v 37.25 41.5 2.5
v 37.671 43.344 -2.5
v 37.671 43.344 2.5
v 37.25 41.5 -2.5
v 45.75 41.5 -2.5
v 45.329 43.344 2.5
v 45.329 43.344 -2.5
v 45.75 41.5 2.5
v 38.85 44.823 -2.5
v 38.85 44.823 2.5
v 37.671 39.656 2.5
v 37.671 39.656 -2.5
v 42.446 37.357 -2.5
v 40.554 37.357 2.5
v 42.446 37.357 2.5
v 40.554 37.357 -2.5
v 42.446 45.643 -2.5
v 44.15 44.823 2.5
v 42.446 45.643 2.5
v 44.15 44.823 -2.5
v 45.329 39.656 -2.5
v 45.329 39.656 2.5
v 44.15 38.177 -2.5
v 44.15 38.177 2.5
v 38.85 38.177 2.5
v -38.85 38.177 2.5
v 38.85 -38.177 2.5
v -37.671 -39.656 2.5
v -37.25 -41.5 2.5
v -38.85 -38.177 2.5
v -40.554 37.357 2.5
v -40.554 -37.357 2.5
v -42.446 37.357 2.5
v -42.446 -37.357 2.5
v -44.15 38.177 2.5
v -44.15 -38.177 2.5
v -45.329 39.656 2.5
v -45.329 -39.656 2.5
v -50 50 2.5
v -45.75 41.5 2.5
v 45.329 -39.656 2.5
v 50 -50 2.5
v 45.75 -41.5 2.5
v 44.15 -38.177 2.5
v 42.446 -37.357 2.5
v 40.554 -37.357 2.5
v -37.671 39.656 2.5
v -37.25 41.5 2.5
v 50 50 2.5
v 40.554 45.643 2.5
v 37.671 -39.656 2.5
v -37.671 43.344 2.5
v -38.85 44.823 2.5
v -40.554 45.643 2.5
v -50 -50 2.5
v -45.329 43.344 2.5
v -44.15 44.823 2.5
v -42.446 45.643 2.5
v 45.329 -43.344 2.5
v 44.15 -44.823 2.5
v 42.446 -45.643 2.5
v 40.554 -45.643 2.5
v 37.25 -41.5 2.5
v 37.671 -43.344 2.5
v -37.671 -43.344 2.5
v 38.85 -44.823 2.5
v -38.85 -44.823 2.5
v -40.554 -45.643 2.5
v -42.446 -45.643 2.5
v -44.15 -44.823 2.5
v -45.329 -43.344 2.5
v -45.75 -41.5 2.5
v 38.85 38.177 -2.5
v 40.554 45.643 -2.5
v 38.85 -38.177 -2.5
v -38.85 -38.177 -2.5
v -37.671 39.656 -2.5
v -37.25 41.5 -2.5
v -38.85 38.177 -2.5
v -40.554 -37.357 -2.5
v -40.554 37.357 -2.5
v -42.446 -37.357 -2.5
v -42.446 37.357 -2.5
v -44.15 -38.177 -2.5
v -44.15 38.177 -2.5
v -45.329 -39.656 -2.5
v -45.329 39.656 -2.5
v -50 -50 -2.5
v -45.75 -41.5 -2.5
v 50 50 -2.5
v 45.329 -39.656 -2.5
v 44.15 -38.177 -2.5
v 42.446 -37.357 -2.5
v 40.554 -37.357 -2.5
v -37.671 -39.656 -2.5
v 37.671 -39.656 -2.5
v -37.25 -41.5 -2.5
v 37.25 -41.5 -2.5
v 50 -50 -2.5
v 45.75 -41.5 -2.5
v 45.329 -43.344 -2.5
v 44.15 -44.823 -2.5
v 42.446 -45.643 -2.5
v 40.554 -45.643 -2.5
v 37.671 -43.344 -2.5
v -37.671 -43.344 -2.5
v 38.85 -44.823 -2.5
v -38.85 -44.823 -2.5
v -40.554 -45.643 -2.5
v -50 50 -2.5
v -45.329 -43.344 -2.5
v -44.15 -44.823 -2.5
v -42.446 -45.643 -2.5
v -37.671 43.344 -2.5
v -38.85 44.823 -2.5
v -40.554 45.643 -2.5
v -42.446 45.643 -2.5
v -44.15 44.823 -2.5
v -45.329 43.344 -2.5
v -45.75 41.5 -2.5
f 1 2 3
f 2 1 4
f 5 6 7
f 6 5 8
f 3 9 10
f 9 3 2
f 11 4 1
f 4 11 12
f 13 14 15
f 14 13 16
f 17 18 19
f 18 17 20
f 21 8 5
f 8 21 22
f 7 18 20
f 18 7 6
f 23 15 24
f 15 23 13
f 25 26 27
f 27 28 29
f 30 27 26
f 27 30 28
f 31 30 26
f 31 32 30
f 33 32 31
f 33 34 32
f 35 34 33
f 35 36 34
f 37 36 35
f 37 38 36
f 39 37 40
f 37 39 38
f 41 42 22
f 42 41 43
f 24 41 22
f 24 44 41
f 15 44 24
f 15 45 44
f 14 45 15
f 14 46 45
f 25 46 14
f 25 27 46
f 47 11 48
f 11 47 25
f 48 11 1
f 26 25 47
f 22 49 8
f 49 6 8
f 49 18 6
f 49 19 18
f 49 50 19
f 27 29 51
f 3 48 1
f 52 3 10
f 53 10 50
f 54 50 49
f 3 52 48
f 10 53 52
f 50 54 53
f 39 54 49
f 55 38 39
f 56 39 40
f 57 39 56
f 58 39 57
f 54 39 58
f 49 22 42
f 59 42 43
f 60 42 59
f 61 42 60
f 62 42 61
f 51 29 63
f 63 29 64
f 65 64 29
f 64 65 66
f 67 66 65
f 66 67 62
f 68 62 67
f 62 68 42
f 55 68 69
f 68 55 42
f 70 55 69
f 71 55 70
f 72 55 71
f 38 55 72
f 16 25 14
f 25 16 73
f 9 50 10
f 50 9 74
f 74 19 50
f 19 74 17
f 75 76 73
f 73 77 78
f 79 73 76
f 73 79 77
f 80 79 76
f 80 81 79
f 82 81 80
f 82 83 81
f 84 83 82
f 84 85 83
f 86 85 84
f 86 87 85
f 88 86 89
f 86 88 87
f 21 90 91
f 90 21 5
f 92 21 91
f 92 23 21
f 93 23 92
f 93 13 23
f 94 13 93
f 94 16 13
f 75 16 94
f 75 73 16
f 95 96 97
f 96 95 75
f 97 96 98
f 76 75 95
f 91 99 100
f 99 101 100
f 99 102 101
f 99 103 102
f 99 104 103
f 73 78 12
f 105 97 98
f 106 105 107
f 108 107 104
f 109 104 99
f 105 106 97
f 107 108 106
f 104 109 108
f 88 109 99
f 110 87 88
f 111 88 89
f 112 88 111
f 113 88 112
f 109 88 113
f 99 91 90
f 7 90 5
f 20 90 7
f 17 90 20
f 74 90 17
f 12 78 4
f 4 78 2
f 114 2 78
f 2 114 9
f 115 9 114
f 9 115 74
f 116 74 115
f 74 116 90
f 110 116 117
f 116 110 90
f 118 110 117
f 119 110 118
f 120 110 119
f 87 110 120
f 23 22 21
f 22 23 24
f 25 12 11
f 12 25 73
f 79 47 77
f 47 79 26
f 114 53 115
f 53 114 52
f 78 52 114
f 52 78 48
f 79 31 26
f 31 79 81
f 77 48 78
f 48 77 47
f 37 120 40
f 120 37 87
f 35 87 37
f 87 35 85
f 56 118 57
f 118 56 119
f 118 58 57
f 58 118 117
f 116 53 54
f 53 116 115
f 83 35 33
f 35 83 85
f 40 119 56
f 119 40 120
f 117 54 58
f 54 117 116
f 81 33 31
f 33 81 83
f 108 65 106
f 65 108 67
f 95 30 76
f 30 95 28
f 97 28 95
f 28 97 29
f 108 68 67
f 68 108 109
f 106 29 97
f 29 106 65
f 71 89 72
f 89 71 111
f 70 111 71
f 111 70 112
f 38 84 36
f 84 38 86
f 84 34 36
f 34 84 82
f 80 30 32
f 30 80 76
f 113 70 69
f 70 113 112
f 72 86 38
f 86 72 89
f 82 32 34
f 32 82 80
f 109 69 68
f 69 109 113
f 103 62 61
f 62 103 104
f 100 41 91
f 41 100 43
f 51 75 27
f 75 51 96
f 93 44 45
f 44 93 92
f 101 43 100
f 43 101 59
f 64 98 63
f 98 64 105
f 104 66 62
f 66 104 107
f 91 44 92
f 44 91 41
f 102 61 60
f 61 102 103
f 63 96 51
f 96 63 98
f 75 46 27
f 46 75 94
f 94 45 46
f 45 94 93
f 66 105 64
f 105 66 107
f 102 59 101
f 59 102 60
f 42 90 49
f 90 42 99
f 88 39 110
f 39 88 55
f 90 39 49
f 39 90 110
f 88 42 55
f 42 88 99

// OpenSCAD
// Generated by SolidPython 1.1.3 on 2023-10-18 15:46:59


difference() {
	cube(center = true, size = [100, 100, 5]);
	union() {
		translate(v = [41.5000000000, 41.5000000000]) {
			cylinder(center = true, h = 5, r = 4.2500000000);
		}
		translate(v = [-41.5000000000, 41.5000000000]) {
			cylinder(center = true, h = 5, r = 4.2500000000);
		}
		translate(v = [-41.5000000000, -41.5000000000]) {
			cylinder(center = true, h = 5, r = 4.2500000000);
		}
		translate(v = [41.5000000000, -41.5000000000]) {
			cylinder(center = true, h = 5, r = 4.2500000000);
		}
	}
}
/***********************************************
*********      SolidPython code:      **********
************************************************
 
import solid
import numbers
import pudb
from solid.utils import *
import viewscad
import subprocess
import os
import os.path as osp
import math
import sys

chamfer_extrude=solid.import_scad("./chamfer_extrude.scad")
chamfer_extrude=chamfer_extrude.chamfer_extrude
r = viewscad.Renderer(width=800, height=800)

def debug(model,f_name,path="/home/ts/code/projects/mfd/designs/debug"):
    solid.scad_render_to_file(model,osp.join(path,f_name)+".scad")
#generate position list of wells using offset from center
wells_pos_from_center_4 = lambda offset: [[-offset,offset],
                                        [offset, offset],
                                        [-offset, -offset],
                                        [offset, -offset]]
#wells_pos_from_center_2 = lambda offset: [[0,offset],
#                                        [0, -offset]]
wells_pos_from_center_2 = lambda offset: [[offset,0],
                                        [-offset,0]]

def make_well(dims,shape=None,height=None,dxf=False):
    def circle_cylinder():
        if dxf or (height is None):
            well = solid.circle(r=dims, segments=64)
        else:
            well = solid.cylinder(r=dims, h=height, segments=64, center = True)
        return well
    if dims is None:
        sys.exit("radius needs to be a number")
    if isinstance(dims, numbers.Number):
        well =circle_cylinder()
    elif len(dims)==1:
        if isinstance(dims[1], numbers.Number):
            well =circle_cylinder()
        else:
            sys.exit("radius needs to be a number")
    elif len(dims)==2:
        well = solid.square(dims,center = True)
    elif len(dims)==3:
        well = solid.cube(dims, center = True)
    return well

def wells_top_bottom(center_gap,device_dims=None,shape=None,height=None, positions = None, dxf = False,well_shape=None):
    if well_shape == None:
        well_shape = make_well(device_dims,shape=shape,height=height,dxf=dxf)
    wells = []
    if positions is None:
        offset = radius+radius/2.0
        positions = wells_pos_from_center_2(offset)
    if dxf or (height is None):
        height = 0
    for position in positions:
        if dxf:
            wells.append(solid.translate([position[0],position[1]])(well_shape))
        else:
            wells.append(solid.translate([position[0],position[1],height/2.0])(well_shape))
    return  union()(*wells)

#place wells in four corners 
def four_corner(radius,height=None, positions = None, dxf = False):
    #if well pos not specified set
    #to equally spaced by half radius
    if positions is None:
        offset = radius+radius/2.0
        positions = wells_pos_from_center_4(offset)
    if dxf or (height is None):
        height = 0
    #make wells at positions with specified radius and height
    wells = []
    for position in positions:
        #make circle if making dxf
        if dxf:
            well_shape = solid.circle(r=radius, segments=64)
            well_shape = solid.translate([position[0],position[1]])(well_shape)
        #if stl make cylinder
        else:
            well_shape = solid.cylinder(r=radius, h=height, segments=64, center = True)
            well_shape = solid.translate([position[0],position[1],height/2.0])(well_shape)
        wells.append(well_shape)
    return  union()(*wells)

#generate channels 
def make_channels(length,width,height=0,num_chans=1,max_chans=None,spacing=None, dxf = False,
                  rotate_channels=False):
    if dxf or (height is None):
        height = 0
    #if channel gap not defined, is equal to
    if spacing is None: spacing = width
    #calculate number of channels if fitting max num within given width
    if not max_chans is None:
        import math
        num_chans = math.floor((max_chans-spacing)/(width+spacing))
    #get total width of channel section  
    total_width = (width*num_chans)+(spacing*(num_chans-1))

    #make template channel
    #if rotate_channels: width, length = length, width
    if dxf:
        channel_t = solid.square([length,width],center = True)
    else:
        channel_t = solid.cube([length,width,height], center = True)

    #if number channels is even, offset the first channel to center its gap
    if num_chans % 2 == 0: centering = -(width/2.0+spacing/2.0)
    else: centering = 0
    #move template channel up to align bottom at z = 0 
    #and offset center if necessary
    if dxf:
        channel_t = solid.translate([0,centering])(channel_t)
    else:
        channel_t = solid.translate([0,centering,height/2.0])(channel_t)

    #if rotate_channels: length,width = width,length
    #start making the channels
    channels = []
    for i in range(num_chans):
        #if i=0 there is no translation
        #if i=1, we make the first channel adjacent to second
        direction = i

        #if i>=1, we add channels alternating left and right
        if i >= 1:
            direction = -(i/2.0)
            if i % 2 == 1: direction = (-direction)+0.5
                
        #make channel at right position and add it to channel list
        translation_coords = [0,direction*(width+spacing)]
        #if rotate_channels: translation_coords = [direction*(width+spacing),0]
        if dxf:
            channel = solid.translate(translation_coords)(channel_t)
        else:
            channel = solid.translate([*translation_coords,0])(channel_t)
        channels.append(channel)
    
    #group all channels as one object
    channels = union()(*channels)
    #compute the x,y,z dimensions in order to pass as arguments 
    #for construction of other parts of device (such as the chambers)
    measurements = {'x':(length/2.0,-length/2.0),
                    'y':(total_width/2.0,-total_width/2.0)}
    if not dxf:
        measurements['z'] = (height,0)
    if rotate_channels:
        channels = solid.rotate(90)(channels)
        measurements['x'],measurements['y']=measurements['y'],measurements['x']
    return channels,measurements

def make_chambers(msrs,height=None,extra=0,len_until=None,width=None, dxf = False):
    #computes x,y,z length
    total = lambda x : abs(x[0]) + abs(x[1])
    
    #if specific height if specified
    #otherwise use same height as channels
    if dxf:
        pass
    elif not height is None:
        msrs['z'] = (height,0)
    else:
        msrs['z'] = (0,0)
        
    #make copy of measurements from channels to modify chamber dimensions 
    #and add length to chambers as specified
    chamber_dims = msrs.copy()
    #calculate length of chamber to reach specified offset
    if not len_until is None:
        chamber_len = len_until-(msrs['x'][0])
    #or add specified length to channel length (if not specified, adds 0)
    else:
        chamber_len = msrs['x'][0]+extra
    #set the chamber length based 
    chamber_dims['x'] = (chamber_len/2.0,-(chamber_len/2.0))
    #compute final dimensions of chamber
    if not width is None:
        chamber_dims['y'] = (width/2.0,-width/2.0)
    chamber_dims = [total(size) for size in chamber_dims.values()]
        
    #calculate chamber translation offset to place adjacent to channels
    chamber_trslt = msrs['x'][0]+(chamber_len/2.0)
    #compute chamber translation coordinates to align with channels
    #x = 1 moves chamber above channels
    #x = -1 moves chamber below channels
    if dxf:
        trslt = lambda x : [x*(chamber_trslt),0]
    else:
        trslt = lambda x : [x*(chamber_trslt),0,msrs['z'][0]/2.0]
    
    #function to make chamber at top or at bottom 
    if dxf:
        move = lambda x : solid.translate(trslt(x))(solid.square(chamber_dims, center = True) )
    else:
        move = lambda x : solid.translate(trslt(x))(solid.cube(chamber_dims,center = True))
    #make top and bottom chambers and return them as grouped
    top = move(1)
    bottom = move(-1)
    #chambers=solid.rotate(90)(solid.union()(top,bottom))
    chambers=(solid.union()(top,bottom))

    return chambers

#create alignment features 
def alignment_features(unit,dims,grid_size, mask_size = None, alignment = "hollow", units_from_center = (2.5,2.5), corner_len=None):
    width = grid_size[0]*dims[0]
    length = grid_size[1]*dims[1]
    if mask_size is None and corner_len is None:
        corner_len = (dims[0] + dims[1]) /2 / 8
    corner = lambda thickness_div : solid.union()( solid.square([corner_len,corner_len/thickness_div],center=False), solid.square([corner_len/thickness_div,corner_len],center=False) )
    
    def make_full(thickness_div):
        thickness = corner_len/thickness_div
        tr = solid.translate([0, 0, 0 ])(solid.rotate(180)(corner(thickness_div)))
        tr = solid.translate([thickness/2,thickness/2,0])(tr)
        bl = solid.translate([0, 0, 0 ])(solid.rotate(0)(corner(thickness_div)))
        bl = solid.translate([-thickness/2,-thickness/2,0])(bl)
        return solid.union()(tr,bl)
    
    def make_hollow(thickness_div):
        thickness = corner_len/(thickness_div/2)
        inner = make_full(thickness_div)
        outer = make_full(thickness_div/2)
        hollow = outer - inner 
        return hollow
    
    center = (width /2 , length/2)
    mask_pos = lambda x,y : (center[0] + x*(float(units_from_center[0])*dims[0]), center[1] + y*(float(units_from_center[1])*dims[1]))
    positions = []
    positions.append(mask_pos(1,0))
    positions.append(mask_pos(0,1))
    positions.append(mask_pos(-1,0))
    positions.append(mask_pos(0,-1))
    make_mask = lambda mtype : make_hollow(8) if mtype == "hollow" else make_full(8)
    masks = [ solid.translate([*position,0])(make_mask(alignment)) for position in positions]
    
    solid.scad_render_to_file(solid.union()(*masks),"./designs/open_chamber/masks.scad")
    #return unit - solid.union()(*masks)
    return solid.union()(*masks,unit)

def create_outline(thickness, array, dims, grid_size,):
    width = grid_size[0]*dims[0] + thickness *2
    length = grid_size[1]*dims[1] + thickness *2
    outer = solid.translate([-thickness, -thickness,0])(solid.square([width, length]))
    return outer-array

def create_wall(wall_thickness, outline_thickness, dims, grid_size, wall_height = 2000, dxf = False):
    inner_width = grid_size[0]*dims[0] + outline_thickness *2
    inner_length = grid_size[1]*dims[1] + outline_thickness *2
    outer_width = inner_width + wall_thickness * 2
    outer_length = inner_length + wall_thickness * 2
    outer_pos_x = -outline_thickness-wall_thickness
    outer_pos_y = -outline_thickness-wall_thickness
    inner_pos_x = -outline_thickness
    inner_pos_y = -outline_thickness
    if dxf:
        inner_wall = solid.translate([inner_pos_x,
                                      inner_pos_y,
                                      0])(solid.square([inner_width, inner_length]))
        outer_wall = solid.translate([outer_pos_x,
                                      outer_pos_y,
                                      0])(solid.square([outer_width, outer_length]))

        return outer_wall-inner_wall
    else:
        inner_wall = solid.translate([inner_pos_x,
                                      inner_pos_y,
                                      0])(solid.cube([inner_width, inner_length,wall_height]))
        outer_wall = solid.translate([outer_pos_x,
                                      outer_pos_y,
                                      0])(solid.cube([outer_width, outer_length,wall_height]))

        return outer_wall-inner_wall, {'wall_height': wall_height,
                                       'wall_thickness': wall_thickness,
                                       'inner_width':inner_width,
                                       'inner_length': inner_length,
                                       'outer_width': outer_width,
                                       'outer_length': outer_length,
                                       'outer_pos_x' : outer_pos_x,
                                       'outer_pos_y' : outer_pos_y,
                                       'inner_pos_x' : inner_pos_x,
                                       'inner_pos_y' : inner_pos_y}

def create_thicker_wall(wall_thickness, outer_wall_offset, wall_dims, dims, grid_size, height_start = .2, height_end=2, dxf = False):
    addon_wall,thicker_wall_dims = create_wall(wall_thickness, outer_wall_offset, dims, grid_size, wall_height=height_end-height_start, dxf = False)
    addon_wall = solid.translate([0,0,height_start])(addon_wall)

    thicker_wall_dims['wall_height'] = height_end
    thicker_wall_dims['wall_thickness'] = wall_dims['wall_thickness'] + wall_thickness
    return addon_wall, thicker_wall_dims
 
def add_lock_to_wall(wall,wall_dims,y_offset = 0,cut_ratio=0.7,L_length=3, gap_ratio=0.05, axis="x",width_ratio=1/2):
    # Makes L shape
    def make_L(max_length,length_thickness,max_width,width_thickness,height,y_offset):
        length = solid.cube([max_length,length_thickness,height])
        width = solid.cube([width_thickness,max_width,height])
        width = solid.translate([max_length-(width_thickness),0,0])(width)
        L = solid.union()(width,length)
        debug(L,"L")
        if axis == "x":
            L = solid.rotate(-90)(L)
            L = solid.translate([0,max_length,0])(L)
        else:
            L = solid.rotate(-180)(L)
            L = solid.translate([max_length,max_width,0])(L)
        return solid.translate([0,0,y_offset])(L)
    
    lock_length = L_length
    lock_width = wall_dims['wall_thickness']*width_ratio
    lock_length_thickness = lock_width/2
    lock_width_thickness = lock_width/2
    L_lock = make_L(lock_length,lock_length_thickness,lock_width,lock_width_thickness, wall_dims['wall_height']-y_offset, y_offset)
    
    margin_space = lock_length - lock_length*(1-gap_ratio)
    key_length = lock_length-margin_space
    key_length_thickness = lock_length_thickness-(margin_space*2)
    key_width = lock_width-(margin_space*2)
    key_width_thickness = lock_width_thickness-(margin_space*2)
    L_key = make_L(key_length,key_length_thickness,key_width,key_width_thickness, wall_dims['wall_height']-y_offset, y_offset)
    L_key = solid.translate([margin_space,margin_space,0])(L_key)
    L = solid.union()(L_lock,L_key)
    debug(L,"L")
    
    #Make cube to be used as negative to split frame in a half
    #Can choose if making left or right negative, specify ratio of split
    def make_negative(right,cut_ratio):
        if axis == "x":
            if right:
                length = wall_dims['outer_length']*(1-cut_ratio)
                pos_x = wall_dims['outer_pos_x']+(wall_dims['outer_length']*cut_ratio)
            else:
                length = wall_dims['outer_length']*(cut_ratio)
                pos_x = wall_dims['outer_pos_x'] 
            negative = solid.cube([wall_dims['outer_width'],length, wall_dims['wall_height']])
            negative = solid.translate([wall_dims['outer_pos_y'],pos_x,0])(negative)
        else:
            if right:
                length = wall_dims['outer_width']*(1-cut_ratio)
                pos_x = wall_dims['outer_pos_y']+(wall_dims['outer_width']*cut_ratio)
            else:
                length = wall_dims['outer_width']*(cut_ratio)
                pos_x = wall_dims['outer_pos_y'] 
            negative = solid.cube([length,wall_dims['outer_length'], wall_dims['wall_height']])
            negative = solid.translate([pos_x,wall_dims['outer_pos_x'],0])(negative)
        return negative, pos_x, length 
                      
    #Make negatives
    negative_right, right_half_pos_x, right_half_length = make_negative(True,cut_ratio)
    negative_left, left_half_pos_x, right_half_length = make_negative(False,cut_ratio)
    #Make halves
    left_half = solid.difference()(wall,negative_right)
    right_half = solid.difference()(wall,negative_left)
    def place_L(L, L_length,L_width):
        #Place L on top wall       
        offset_to_center = (wall_dims['wall_thickness']-L_width)/2
        if axis == "x":
            y_pos_top = (wall_dims['outer_pos_y'] +
                    wall_dims['outer_width'] - 
                    L_width - offset_to_center)
            top_L = solid.translate([y_pos_top,
                                     right_half_pos_x-(L_length),
                                     0])(L)
            #Place L on bottom wall       
            y_pos_bottom = wall_dims['outer_pos_y']+offset_to_center
            bottom_L = solid.translate([y_pos_bottom,
                                        right_half_pos_x-L_length,
                                        0])(L)
        else:
            y_pos_top = (wall_dims['outer_pos_x'] +
                    wall_dims['outer_length'] -
                    (L_width+offset_to_center))
            top_L = solid.translate([right_half_pos_x-L_length,
                                     y_pos_top,
                                     0])(L)
            #Place L on bottom wall       
            y_pos_bottom = wall_dims['outer_pos_y']+offset_to_center
            bottom_L = solid.translate([right_half_pos_x-L_length,
                                        y_pos_bottom,
                                        0])(L)
        return bottom_L, top_L
    #Make complimentary L pieces through union and differences
    #Make Lock
    bottom_L_lock, top_L_lock = place_L(L_lock,L_length,lock_width)
    left_half = solid.difference()(left_half,bottom_L_lock)
    left_half = solid.difference()(left_half,top_L_lock)
    #Make Key
    bottom_L_key, top_L_key = place_L(L_key,L_length,lock_width)
    right_half = solid.union()(right_half,bottom_L_key)
    right_half = solid.union()(right_half,top_L_key)
    return left_half, right_half


#build a row x col grid of containment units
def make_unit_array(unit,dims,grid_size, dxf = False, alignment = None, mask_size = None,
                    units_from_center = None,alignment_offset=None, alignment_mark_size=1):
    units = []
    for col in range(grid_size[1]):
        for row in range(grid_size[0]):
            if dxf:
                units.append(solid.translate([row*dims[0],col*dims[1]])(unit))
            else:
                units.append(solid.translate([row*dims[0],col*dims[1],dims[2]/2.0])(unit))
    array = solid.union()(*units)
    if (not alignment is None) and dxf:
        if not alignment_offset is None:
            array = solid.translate([alignment_offset[0],alignment_offset[1]])(array)
        array = alignment_features(array,dims, grid_size, alignment = alignment, mask_size = None, units_from_center = units_from_center,corner_len=alignment_mark_size)
        if not alignment_offset is None:
            array = solid.translate([-alignment_offset[0],-alignment_offset[1]])(array)
    return array


def make_taylor(wells_pos = wells_pos_from_center_4(2.25), well_rad = 1.5 ,
                well_height = 2, chan_w = 0.01, chan_l = 1, chan_h = 0.010 ,
                chan_gap = 0.040, max_chans = None,num_chans=100, chamber_height  = 0.100,
                columns = 1, rows = 1, chamber_len_until=2.25, add_channels = True, add_wells = True, 
                add_chambers = True, save_path = "./", alignment = None, units_from_center = 2,
                mask_size = None, render_stl = False, outline_thickness = 0.050, dxf = True,
                wall_height = 15, wall_thickness = 0.95, casing_x=9, casing_y=9, casing_z=0,rotate_units=0):

    dims = [casing_x, casing_y, casing_z]
    wells = four_corner(well_rad,well_height, dxf = dxf, positions = wells_pos)
    debug(wells,"wells")
    channels, msrs = make_channels(chan_l,chan_w,chan_h,dxf=dxf, spacing = chan_gap, max_chans=max_chans,num_chans=num_chans)
    debug(channels,"channels")
    chambers = make_chambers(msrs,dxf = dxf, height=chamber_height,len_until=chamber_len_until)
    debug(chambers,"chambers")

    #add together and render
    device_parts = []
    if add_channels:
        device_parts.append(channels)
    if add_wells:
        device_parts.append(wells)
    if add_chambers:
        device_parts.append(chambers)
    device=union()(*device_parts)
    device = rotate(rotate_units)(device)

    device=solid.translate([dims[0]/2.0,dims[1]/2.0,0])(device)
    channels = rotate(rotate_units)(channels)
    channels=solid.translate([dims[0]/2,dims[1]/2,0])(channels)
    chambers_wells = union()(wells,chambers)
    chambers_wells = rotate(rotate_units)(chambers_wells)
    chambers_wells=solid.translate([dims[0]/2,dims[1]/2,0])(chambers_wells)

    file_name = str(rows)+'x'+str(columns)+'_units_'
    grid_size = [rows,columns]

    if alignment:
        alignment="full"
    device = make_unit_array(device,dims,grid_size, dxf=dxf, alignment = alignment,
                                 units_from_center = units_from_center)
    channels = make_unit_array(channels,dims,grid_size, dxf=dxf, alignment = alignment,
                                 units_from_center = units_from_center)
    if alignment=="full":
        alignment="hollow"

    chambers_wells = make_unit_array(chambers_wells,dims,grid_size, dxf=dxf, alignment = alignment,
                                 units_from_center =units_from_center)

    def save_model(model,prefix):
        model_fname = os.path.abspath(save_path+prefix+"_"+file_name+".scad")
        solid.scad_render_to_file(model,model_fname)
        return model_fname

    wells_fname = save_model(wells,"wells")
    channels_fname = save_model(channels,"channels")
    device_fname = save_model(device,"device")
    chambers_wells_fname = save_model(chambers_wells,"chambers_wells")
    return (chambers_wells,chambers_wells_fname), (channels,channels_fname), (device,device_fname)

def make_device(design='open',rows=8,columns=6,wells_pos = 4.5,well_offset=3.2, well_rad=3.2,well_height=0.1,
                chan_l=1,chan_w=0.01,chan_h=0.01,chan_gap=0.015,num_chans=101,dxf=True,save_path="./designs/open_chamber/",
                casing_x=9.0,casing_y=18.0,casing_z=0,rotate_units=90,units_from_center=(3,1),chamber_len_until=4.5,
                chamber_width=None,alignment=True, add_wells=True, add_channels=True,add_chambers=True,well_shape=None):

    dims = [casing_x, casing_y, casing_z]
    if design == "open":
        wells_pos=wells_pos_from_center_2(wells_pos)
        wells = wells_top_bottom(well_offset*2,device_dims=well_rad,height=well_height, dxf = dxf, positions = wells_pos,well_shape=well_shape)
    elif design == "closed":
        wells_pos=wells_pos_from_center_4(wells_pos)
        debug(wells,"wells")
        wells = four_corner(well_offset,well_height,device_dims=well_rad, dxf = dxf, positions = wells_pos)
    else:
        print(design+" is not a valid design.\n Choose valid design: 'open' or 'closed'")
        exit()
    wells = rotate(rotate_units)(wells)
    wells=solid.translate([dims[0]/2,dims[1]/2,0])(wells)
    debug(wells,"wells")

    channels, msrs = make_channels(chan_l,chan_w,chan_h,dxf=dxf, spacing = chan_gap, num_chans=num_chans,rotate_channels=False)
    channels = rotate(rotate_units)(channels)
    channels=solid.translate([dims[0]/2,dims[1]/2,0])(channels)

    chambers=make_chambers(msrs,height=None,extra=0,len_until=chamber_len_until, width=chamber_width,dxf = dxf)
    chambers = rotate(rotate_units)(chambers)
    chambers=solid.translate([dims[0]/2,dims[1]/2,0])(chambers)

    device_parts = []
    if add_channels:
        device_parts.append(channels)
    if add_wells:
        device_parts.append(wells)
    if add_chambers:
        device_parts.append(chambers)
    device = union()(*device_parts)
    #device = rotate(rotate_units)(device)
    #device=solid.translate([dims[0]/2.0,dims[1]/2.0,0])(device)

    chambers_wells = []
    if add_chambers:
        chambers_wells.append(chambers)
    if add_wells:
        chambers_wells.append(wells)
    chambers_wells = union()(*chambers_wells)
    #chambers_wells = union()(wells,chambers)
    #chambers_wells = rotate(rotate_units)(chambers_wells)
    #chambers_wells=solid.translate([dims[0]/2,dims[1]/2,0])(chambers_wells)

    file_name = str(rows)+'x'+str(columns)+'_units_'

    grid_size = [rows,columns]
    if alignment:
        alignment="full"
    device = make_unit_array(device,dims,grid_size, dxf=dxf, alignment = alignment,
                                 units_from_center = units_from_center)
    channels = make_unit_array(channels,dims,grid_size, dxf=dxf, alignment = alignment,
                                 units_from_center = units_from_center)
    if alignment=="full":
        alignment="hollow"

    chambers_wells = make_unit_array(chambers_wells,dims,grid_size, dxf=dxf, alignment = alignment,
                                 units_from_center =units_from_center)

    def save_model(model,prefix):
        model_fname = os.path.abspath(save_path+prefix+"_"+file_name+".scad")
        solid.scad_render_to_file(model,model_fname)
        return model_fname

    wells_fname = save_model(wells,"wells")
    channels_fname = save_model(channels,"channels")
    device_fname = save_model(device,"device")
    chambers_wells_fname = save_model(chambers_wells,"chambers_wells")
    return (chambers_wells,chambers_wells_fname), (channels,channels_fname), (device,device_fname)


def make_open_chamber(rows=8,columns=6,wells_pos = wells_pos_from_center_2(4.5), well_rad=3.2,well_height=0.1,
                      chan_l=1,chan_w=0.01,chan_h=0.01,chan_gap=0.015,num_chans=101,dxf=True,save_path="./designs/open_chamber/",
                      casing_x=9.0,casing_y=18.0,casing_z=0,rotate_units=90,units_from_center=(3,1),chamber_len_until=4.5,
                      chamber_width=None,alignment=True, add_wells=True, add_channels=True,add_chambers=True,well_shape=None):

    dims = [casing_x, casing_y, casing_z]
    wells = wells_top_bottom(well_rad,height=well_height, dxf = dxf, positions = wells_pos, well_shape=well_shape)
    channels, msrs = make_channels(chan_l,chan_w,chan_h,dxf=dxf, spacing = chan_gap, num_chans=num_chans,rotate_channels=False)
    chambers=make_chambers(msrs,height=None,extra=0,len_until=chamber_len_until, width=chamber_width,dxf = dxf)
    debug(chambers,"chambers")
    device_parts = []
    if add_channels:
        device_parts.append(channels)
    if add_wells:
        device_parts.append(wells)
    if add_chambers:
        device_parts.append(chambers)
    device = union()(*device_parts)
    device = rotate(rotate_units)(device)
    device=solid.translate([dims[0]/2.0,dims[1]/2.0,0])(device)
    channels = rotate(rotate_units)(channels)
    channels=solid.translate([dims[0]/2,dims[1]/2,0])(channels)
    chambers_wells = union()(wells,chambers)
    chambers_wells = rotate(rotate_units)(chambers_wells)
    chambers_wells=solid.translate([dims[0]/2,dims[1]/2,0])(chambers_wells)

    file_name = str(rows)+'x'+str(columns)+'_units_'

    grid_size = [rows,columns]
    if alignment:
        alignment="full"
    device = make_unit_array(device,dims,grid_size, dxf=dxf, alignment = alignment,
                                 units_from_center = units_from_center)
    channels = make_unit_array(channels,dims,grid_size, dxf=dxf, alignment = alignment,
                                 units_from_center = units_from_center)
    if alignment=="full":
        alignment="hollow"

    chambers_wells = make_unit_array(chambers_wells,dims,grid_size, dxf=dxf, alignment = alignment,
                                 units_from_center =units_from_center)

    def save_model(model,prefix):
        model_fname = os.path.abspath(save_path+prefix+"_"+file_name+".scad")
        solid.scad_render_to_file(model,model_fname)
        return model_fname

    wells_fname = save_model(wells,"wells")
    channels_fname = save_model(channels,"channels")
    device_fname = save_model(device,"device")
    chambers_wells_fname = save_model(chambers_wells,"chambers_wells")
    return (chambers_wells,chambers_wells_fname), (channels,channels_fname), (device,device_fname)

def to_dxf(scad_path):
    dxf_path = scad_path.replace(".scad",".dxf")
    subprocess.call(["openscad", "-o", dxf_path, scad_path])
    import ezdxf
    temp_dxf = ezdxf.readfile(dxf_path)
    temp_dxf.saveas(dxf_path)

#def make_walls(diameter,thickness,grid_size,dims,height=20,segments=256,make_inner=True):
#    wafer_wall_out = solid.cylinder(r=diameter/2,h=height, segments=segments)
#    wafer_wall_in = solid.cylinder(r=(diameter/2-thickness),h=height, segments=segments)
#    wafer_wall = solid.difference()(wafer_wall_out,wafer_wall_in)
#    wafer_wall = solid.translate([grid_size[1]*dims[1]/2.0,grid_size[0]*dims[0]/2.0])(wafer_wall)
#
#    vertical_wall_length = grid_size[1]*dims[1]
#    horizontal_wall_length = grid_size[0]*dims[0]
#    vertical_wall = solid.cube([vertical_wall_length,thickness,height],center = True)
#    vertical_wall = solid.translate([vertical_wall_length/2,0,height/2])(vertical_wall)
#    horizontal_wall = solid.cube([thickness,horizontal_wall_length,height],center = True)
#    horizontal_wall = solid.translate([0,vertical_wall_length/2,height/2])(horizontal_wall)
#    walls = []
#    walls.append(horizontal_wall)
#    walls.append(vertical_wall)
#    for col in range(grid_size[1]):
#        if col == grid_size[1]-1: 
#            walls.append(solid.translate([0,(col+1)*dims[1]])(vertical_wall))
#        elif col > 0 and col < grid_size[1]-1 and make_inner==True:
#            walls.append(solid.translate([0,(col+1)*dims[1]])(vertical_wall))
#    for row in range(grid_size[0]):
#        if row == grid_size[0]-1: 
#            walls.append(solid.translate([(row+1)*dims[0],0])(horizontal_wall))
#        elif row > 0 and row < grid_size[0]-1 and make_inner==True:
#            walls.append(solid.translate([(row+1)*dims[0],0])(horizontal_wall))
#    walls = union()(*walls)
#    wafer_walls = union()(walls,wafer_wall)
#    return walls,wafer_wall,wafer_walls

def make_walls(diameter,thickness,grid_size,dims,height=20,segments=256,make_inner=True,padx=0,pady=0):
    wafer_wall_out = solid.cylinder(r=diameter/2,h=height, segments=segments)
    wafer_wall_in = solid.cylinder(r=(diameter/2-thickness),h=height, segments=segments)
    wafer_wall = solid.difference()(wafer_wall_out,wafer_wall_in)
    wafer_wall = solid.translate([grid_size[1]*dims[1]/2.0,grid_size[0]*dims[0]/2.0])(wafer_wall)

    vertical_wall_length = grid_size[0]*dims[0]+padx
    horizontal_wall_length = grid_size[1]*dims[1]+pady
    vertical_wall = solid.cube([vertical_wall_length,thickness,height],center = True)
    vertical_wall = solid.translate([vertical_wall_length/2-pady/2,-padx/2,height/2])(vertical_wall)
    horizontal_wall = solid.cube([thickness,horizontal_wall_length,height],center = True)
    horizontal_wall = solid.translate([-pady/2,horizontal_wall_length/2-padx/2,height/2])(horizontal_wall)
    walls = []
    walls.append(horizontal_wall)
    walls.append(vertical_wall)
    for col in range(grid_size[1]):
        if col == grid_size[1]-1: 
            walls.append(solid.translate([0,(col+1)*dims[1]+pady])(vertical_wall))
        elif col > 0 and col < grid_size[1]-1 and make_inner==True:
            walls.append(solid.translate([0,(col+1)*dims[1]])(vertical_wall))
    for row in range(grid_size[0]):
        if row == grid_size[0]-1: 
            walls.append(solid.translate([(row+1)*dims[0]+padx,0])(horizontal_wall))
        elif row > 0 and row < grid_size[0]-1 and make_inner==True:
            walls.append(solid.translate([(row+1)*dims[0],0])(horizontal_wall))
    walls = union()(*walls)
    wafer_walls = union()(walls,wafer_wall)
    return walls,wafer_wall,wafer_walls

def save_model(model,base_path,base_name,dxf=True):
    if not os.path.exists(base_path):
        os.makedirs(base_path)
    dxf_path=osp.join(base_path,base_name+".scad")
    solid.scad_render_to_file(model,osp.join(dxf_path))
    if dxf:
        to_dxf(dxf_path)

def make_wafer(diameter,flat_len,thickness):
    wafer = solid.cylinder(r1=diameter/2,r2=diameter/2,h=thickness,segments=512,)()
    x_start_flat=(flat_len/2)
    y_start_flat = math.sqrt(((diameter/2)**2) - (x_start_flat**2) )
    height_delete_flat=diameter/2-y_start_flat
    flat_delete = solid.cube([flat_len,height_delete_flat,thickness],center=False)()
    flat_delete = solid.translate([-flat_len/2,y_start_flat,0])(flat_delete)
    wafer = solid.difference()(wafer,flat_delete)
    wafer = solid.rotate(90)(wafer)
    return wafer

def add_wafer_to_mask(wafer_size,flat_len,mask,grid_size,dims,wafer_line_thickness=0.1,outer_mask_thickness=5,alignment_offset=None):
    def make_wafer_mask(wafer_size,flat_len):
        wafer_mask = make_wafer(wafer_size,flat_len,1)
        wafer_mask = solid.projection()(wafer_mask)
        wafer_mask = solid.translate([grid_size[0]*dims[0]/2.0,grid_size[1]*dims[1]/2.0])(wafer_mask)
        if not alignment_offset is None:
            wafer_mask = solid.translate([-alignment_offset[0],-alignment_offset[1]])(wafer_mask)
        return wafer_mask

    inner_wafer_line_mask = make_wafer_mask(wafer_size-wafer_line_thickness/2,flat_len)
    outer_wafer_line_mask = make_wafer_mask(wafer_size+wafer_line_thickness/2,flat_len)
    outer_wafer_mask = make_wafer_mask(wafer_size+outer_mask_thickness,flat_len)
    outer_wafer_mask = solid.difference()(outer_wafer_mask,outer_wafer_line_mask)
    wafer_mask = solid.union()(outer_wafer_mask,inner_wafer_line_mask)

    return solid.difference()(wafer_mask,mask)

def make_posts(post_shape,post_height):
    posts = solid.linear_extrude(height=post_height)(post_shape)
    return posts

def make_wafer_empty(diameter,flat_len,thickness,margin,notch_len=20,notch_height=5,oversize=1.01):
    diameter*=oversize
    flat_len*=oversize
    wafer = make_wafer(diameter,flat_len,thickness)
    holder = solid.cylinder(r1=diameter/2+margin,r2=diameter/2+margin,h=thickness,segments=512)()
    holder = solid.difference()(holder,wafer)

    x_start_flat=(flat_len/2)
    y_start_flat = math.sqrt(((diameter/2)**2) - (x_start_flat**2) )
    height_delete_flat=diameter/2-y_start_flat
    notch = solid.cube([notch_len,notch_height,thickness],center=False)()
    notch = solid.translate([-notch_len/2,y_start_flat,0])(notch)
    notch = solid.rotate(90)(notch)
    return solid.difference()(holder,notch)

def wafer_print_calibration(diameter,thickness,height,z_offset):
    circles = []
    radii = []
    radii.append(diameter/2.0*0.8)
    radii.append(diameter/2.0*0.6)
    radii.append(diameter/2.0*0.4)
    radii.append(diameter/2.0*0.2)
    for radius in radii:
        inner = solid.cylinder(r1=radius-(thickness/2.0),r2=radius-(thickness/2.0),h=thickness,segments=512,)()
        outer = solid.cylinder(r1=radius+(thickness/2.0),r2=radius+(thickness/2.0),h=thickness,segments=512,)()
        diff = solid.difference()(outer,inner)
        circles.append(diff)
    circles = solid.union()(*circles)
    circles = solid.translate([0,0,z_offset])(circles)
    return circles

def make_rack(wells,dims,grid_size,alignment_offset,rack_x,rack_y,rack_thickness,bolt_width,add_bolts=True):

    #get X and Y dimensions of gride of pipette tips
    X_len = dims[0]*grid_size[0]
    Y_len = dims[1]*grid_size[1]
    #make rack
    rack = solid.cube([rack_x,rack_y,rack_thickness],center=True)

    if add_bolts:
    #add bolt holes
        bolt_hole=solid.cylinder(r=bolt_width/2,h=rack_thickness,center=True)()
        bolt_holes = []
        bolt_holes.append(solid.translate([rack_x/2-1.5*bolt_width,rack_y/2-1.5*bolt_width])(bolt_hole))
        bolt_holes.append(solid.translate([-rack_x/2+1.5*bolt_width,rack_y/2-1.5*bolt_width])(bolt_hole))
        bolt_holes.append(solid.translate([-rack_x/2+1.5*bolt_width,-rack_y/2+1.5*bolt_width])(bolt_hole))
        bolt_holes.append(solid.translate([rack_x/2-1.5*bolt_width,-rack_y/2+1.5*bolt_width])(bolt_hole))
        bolt_holes = solid.union()(*bolt_holes)
        rack=solid.difference()(rack,bolt_holes)
    rack_support = rack

    #center rack with pipette holes
    rack = solid.translate([0,0,rack_thickness/2])(rack)
    rack = solid.translate([X_len/2,Y_len/2])(rack)
    rack = solid.translate([-alignment_offset[0],-alignment_offset[1]])(rack)
    wells = solid.linear_extrude(height=rack_thickness)(wells)
    rack = solid.difference()(rack,wells)
    return rack, rack_support

def make_pillar(wells,dims,grid_size,alignment_offset,rack_x,rack_y,pillar_height,rack_thickness,bolt_width,add_bolts=True,taper_angle=1,bolt_position_corner=1.5):

    #get X and Y dimensions of gride of pipette tips
    X_len = dims[0]*grid_size[0]
    Y_len = dims[1]*grid_size[1]
    #make rack
    rack = solid.cube([rack_x,rack_y,rack_thickness],center=True)
    
    if add_bolts:
    #add bolt holes
        bolt_hole=solid.cylinder(r=bolt_width/2,h=rack_thickness,center=True)()
        bolt_holes = []
        bolt_holes.append(solid.translate([rack_x/2-bolt_position_corner*bolt_width,rack_y/2-bolt_position_corner*bolt_width])(bolt_hole))
        bolt_holes.append(solid.translate([-rack_x/2+bolt_position_corner*bolt_width,rack_y/2-bolt_position_corner*bolt_width])(bolt_hole))
        bolt_holes.append(solid.translate([-rack_x/2+bolt_position_corner*bolt_width,-rack_y/2+bolt_position_corner*bolt_width])(bolt_hole))
        bolt_holes.append(solid.translate([rack_x/2-bolt_position_corner*bolt_width,-rack_y/2+bolt_position_corner*bolt_width])(bolt_hole))
        bolt_holes = solid.union()(*bolt_holes)
        rack=solid.difference()(rack,bolt_holes)
    rack_support = rack

    #center rack with pipette holes
    #rack = solid.translate([0,0,-rack_thickness])(rack)
    rack = solid.translate([X_len/2,Y_len/2])(rack)
    rack = solid.translate([-alignment_offset[0],-alignment_offset[1]])(rack)
    if not taper_angle == 0:
        wells=chamfer_extrude(pillar_height,taper_angle,segments=20)(wells)
    else:
        wells = solid.linear_extrude(height=pillar_height)(wells)
    rack = solid.union()(rack,wells)
    return rack, rack_support

def deg_taper_len(height,deg):
    if not deg == 0:
        return height*math.tan(math.radians(deg))
    else:
        return 0









 
 
************************************************/
